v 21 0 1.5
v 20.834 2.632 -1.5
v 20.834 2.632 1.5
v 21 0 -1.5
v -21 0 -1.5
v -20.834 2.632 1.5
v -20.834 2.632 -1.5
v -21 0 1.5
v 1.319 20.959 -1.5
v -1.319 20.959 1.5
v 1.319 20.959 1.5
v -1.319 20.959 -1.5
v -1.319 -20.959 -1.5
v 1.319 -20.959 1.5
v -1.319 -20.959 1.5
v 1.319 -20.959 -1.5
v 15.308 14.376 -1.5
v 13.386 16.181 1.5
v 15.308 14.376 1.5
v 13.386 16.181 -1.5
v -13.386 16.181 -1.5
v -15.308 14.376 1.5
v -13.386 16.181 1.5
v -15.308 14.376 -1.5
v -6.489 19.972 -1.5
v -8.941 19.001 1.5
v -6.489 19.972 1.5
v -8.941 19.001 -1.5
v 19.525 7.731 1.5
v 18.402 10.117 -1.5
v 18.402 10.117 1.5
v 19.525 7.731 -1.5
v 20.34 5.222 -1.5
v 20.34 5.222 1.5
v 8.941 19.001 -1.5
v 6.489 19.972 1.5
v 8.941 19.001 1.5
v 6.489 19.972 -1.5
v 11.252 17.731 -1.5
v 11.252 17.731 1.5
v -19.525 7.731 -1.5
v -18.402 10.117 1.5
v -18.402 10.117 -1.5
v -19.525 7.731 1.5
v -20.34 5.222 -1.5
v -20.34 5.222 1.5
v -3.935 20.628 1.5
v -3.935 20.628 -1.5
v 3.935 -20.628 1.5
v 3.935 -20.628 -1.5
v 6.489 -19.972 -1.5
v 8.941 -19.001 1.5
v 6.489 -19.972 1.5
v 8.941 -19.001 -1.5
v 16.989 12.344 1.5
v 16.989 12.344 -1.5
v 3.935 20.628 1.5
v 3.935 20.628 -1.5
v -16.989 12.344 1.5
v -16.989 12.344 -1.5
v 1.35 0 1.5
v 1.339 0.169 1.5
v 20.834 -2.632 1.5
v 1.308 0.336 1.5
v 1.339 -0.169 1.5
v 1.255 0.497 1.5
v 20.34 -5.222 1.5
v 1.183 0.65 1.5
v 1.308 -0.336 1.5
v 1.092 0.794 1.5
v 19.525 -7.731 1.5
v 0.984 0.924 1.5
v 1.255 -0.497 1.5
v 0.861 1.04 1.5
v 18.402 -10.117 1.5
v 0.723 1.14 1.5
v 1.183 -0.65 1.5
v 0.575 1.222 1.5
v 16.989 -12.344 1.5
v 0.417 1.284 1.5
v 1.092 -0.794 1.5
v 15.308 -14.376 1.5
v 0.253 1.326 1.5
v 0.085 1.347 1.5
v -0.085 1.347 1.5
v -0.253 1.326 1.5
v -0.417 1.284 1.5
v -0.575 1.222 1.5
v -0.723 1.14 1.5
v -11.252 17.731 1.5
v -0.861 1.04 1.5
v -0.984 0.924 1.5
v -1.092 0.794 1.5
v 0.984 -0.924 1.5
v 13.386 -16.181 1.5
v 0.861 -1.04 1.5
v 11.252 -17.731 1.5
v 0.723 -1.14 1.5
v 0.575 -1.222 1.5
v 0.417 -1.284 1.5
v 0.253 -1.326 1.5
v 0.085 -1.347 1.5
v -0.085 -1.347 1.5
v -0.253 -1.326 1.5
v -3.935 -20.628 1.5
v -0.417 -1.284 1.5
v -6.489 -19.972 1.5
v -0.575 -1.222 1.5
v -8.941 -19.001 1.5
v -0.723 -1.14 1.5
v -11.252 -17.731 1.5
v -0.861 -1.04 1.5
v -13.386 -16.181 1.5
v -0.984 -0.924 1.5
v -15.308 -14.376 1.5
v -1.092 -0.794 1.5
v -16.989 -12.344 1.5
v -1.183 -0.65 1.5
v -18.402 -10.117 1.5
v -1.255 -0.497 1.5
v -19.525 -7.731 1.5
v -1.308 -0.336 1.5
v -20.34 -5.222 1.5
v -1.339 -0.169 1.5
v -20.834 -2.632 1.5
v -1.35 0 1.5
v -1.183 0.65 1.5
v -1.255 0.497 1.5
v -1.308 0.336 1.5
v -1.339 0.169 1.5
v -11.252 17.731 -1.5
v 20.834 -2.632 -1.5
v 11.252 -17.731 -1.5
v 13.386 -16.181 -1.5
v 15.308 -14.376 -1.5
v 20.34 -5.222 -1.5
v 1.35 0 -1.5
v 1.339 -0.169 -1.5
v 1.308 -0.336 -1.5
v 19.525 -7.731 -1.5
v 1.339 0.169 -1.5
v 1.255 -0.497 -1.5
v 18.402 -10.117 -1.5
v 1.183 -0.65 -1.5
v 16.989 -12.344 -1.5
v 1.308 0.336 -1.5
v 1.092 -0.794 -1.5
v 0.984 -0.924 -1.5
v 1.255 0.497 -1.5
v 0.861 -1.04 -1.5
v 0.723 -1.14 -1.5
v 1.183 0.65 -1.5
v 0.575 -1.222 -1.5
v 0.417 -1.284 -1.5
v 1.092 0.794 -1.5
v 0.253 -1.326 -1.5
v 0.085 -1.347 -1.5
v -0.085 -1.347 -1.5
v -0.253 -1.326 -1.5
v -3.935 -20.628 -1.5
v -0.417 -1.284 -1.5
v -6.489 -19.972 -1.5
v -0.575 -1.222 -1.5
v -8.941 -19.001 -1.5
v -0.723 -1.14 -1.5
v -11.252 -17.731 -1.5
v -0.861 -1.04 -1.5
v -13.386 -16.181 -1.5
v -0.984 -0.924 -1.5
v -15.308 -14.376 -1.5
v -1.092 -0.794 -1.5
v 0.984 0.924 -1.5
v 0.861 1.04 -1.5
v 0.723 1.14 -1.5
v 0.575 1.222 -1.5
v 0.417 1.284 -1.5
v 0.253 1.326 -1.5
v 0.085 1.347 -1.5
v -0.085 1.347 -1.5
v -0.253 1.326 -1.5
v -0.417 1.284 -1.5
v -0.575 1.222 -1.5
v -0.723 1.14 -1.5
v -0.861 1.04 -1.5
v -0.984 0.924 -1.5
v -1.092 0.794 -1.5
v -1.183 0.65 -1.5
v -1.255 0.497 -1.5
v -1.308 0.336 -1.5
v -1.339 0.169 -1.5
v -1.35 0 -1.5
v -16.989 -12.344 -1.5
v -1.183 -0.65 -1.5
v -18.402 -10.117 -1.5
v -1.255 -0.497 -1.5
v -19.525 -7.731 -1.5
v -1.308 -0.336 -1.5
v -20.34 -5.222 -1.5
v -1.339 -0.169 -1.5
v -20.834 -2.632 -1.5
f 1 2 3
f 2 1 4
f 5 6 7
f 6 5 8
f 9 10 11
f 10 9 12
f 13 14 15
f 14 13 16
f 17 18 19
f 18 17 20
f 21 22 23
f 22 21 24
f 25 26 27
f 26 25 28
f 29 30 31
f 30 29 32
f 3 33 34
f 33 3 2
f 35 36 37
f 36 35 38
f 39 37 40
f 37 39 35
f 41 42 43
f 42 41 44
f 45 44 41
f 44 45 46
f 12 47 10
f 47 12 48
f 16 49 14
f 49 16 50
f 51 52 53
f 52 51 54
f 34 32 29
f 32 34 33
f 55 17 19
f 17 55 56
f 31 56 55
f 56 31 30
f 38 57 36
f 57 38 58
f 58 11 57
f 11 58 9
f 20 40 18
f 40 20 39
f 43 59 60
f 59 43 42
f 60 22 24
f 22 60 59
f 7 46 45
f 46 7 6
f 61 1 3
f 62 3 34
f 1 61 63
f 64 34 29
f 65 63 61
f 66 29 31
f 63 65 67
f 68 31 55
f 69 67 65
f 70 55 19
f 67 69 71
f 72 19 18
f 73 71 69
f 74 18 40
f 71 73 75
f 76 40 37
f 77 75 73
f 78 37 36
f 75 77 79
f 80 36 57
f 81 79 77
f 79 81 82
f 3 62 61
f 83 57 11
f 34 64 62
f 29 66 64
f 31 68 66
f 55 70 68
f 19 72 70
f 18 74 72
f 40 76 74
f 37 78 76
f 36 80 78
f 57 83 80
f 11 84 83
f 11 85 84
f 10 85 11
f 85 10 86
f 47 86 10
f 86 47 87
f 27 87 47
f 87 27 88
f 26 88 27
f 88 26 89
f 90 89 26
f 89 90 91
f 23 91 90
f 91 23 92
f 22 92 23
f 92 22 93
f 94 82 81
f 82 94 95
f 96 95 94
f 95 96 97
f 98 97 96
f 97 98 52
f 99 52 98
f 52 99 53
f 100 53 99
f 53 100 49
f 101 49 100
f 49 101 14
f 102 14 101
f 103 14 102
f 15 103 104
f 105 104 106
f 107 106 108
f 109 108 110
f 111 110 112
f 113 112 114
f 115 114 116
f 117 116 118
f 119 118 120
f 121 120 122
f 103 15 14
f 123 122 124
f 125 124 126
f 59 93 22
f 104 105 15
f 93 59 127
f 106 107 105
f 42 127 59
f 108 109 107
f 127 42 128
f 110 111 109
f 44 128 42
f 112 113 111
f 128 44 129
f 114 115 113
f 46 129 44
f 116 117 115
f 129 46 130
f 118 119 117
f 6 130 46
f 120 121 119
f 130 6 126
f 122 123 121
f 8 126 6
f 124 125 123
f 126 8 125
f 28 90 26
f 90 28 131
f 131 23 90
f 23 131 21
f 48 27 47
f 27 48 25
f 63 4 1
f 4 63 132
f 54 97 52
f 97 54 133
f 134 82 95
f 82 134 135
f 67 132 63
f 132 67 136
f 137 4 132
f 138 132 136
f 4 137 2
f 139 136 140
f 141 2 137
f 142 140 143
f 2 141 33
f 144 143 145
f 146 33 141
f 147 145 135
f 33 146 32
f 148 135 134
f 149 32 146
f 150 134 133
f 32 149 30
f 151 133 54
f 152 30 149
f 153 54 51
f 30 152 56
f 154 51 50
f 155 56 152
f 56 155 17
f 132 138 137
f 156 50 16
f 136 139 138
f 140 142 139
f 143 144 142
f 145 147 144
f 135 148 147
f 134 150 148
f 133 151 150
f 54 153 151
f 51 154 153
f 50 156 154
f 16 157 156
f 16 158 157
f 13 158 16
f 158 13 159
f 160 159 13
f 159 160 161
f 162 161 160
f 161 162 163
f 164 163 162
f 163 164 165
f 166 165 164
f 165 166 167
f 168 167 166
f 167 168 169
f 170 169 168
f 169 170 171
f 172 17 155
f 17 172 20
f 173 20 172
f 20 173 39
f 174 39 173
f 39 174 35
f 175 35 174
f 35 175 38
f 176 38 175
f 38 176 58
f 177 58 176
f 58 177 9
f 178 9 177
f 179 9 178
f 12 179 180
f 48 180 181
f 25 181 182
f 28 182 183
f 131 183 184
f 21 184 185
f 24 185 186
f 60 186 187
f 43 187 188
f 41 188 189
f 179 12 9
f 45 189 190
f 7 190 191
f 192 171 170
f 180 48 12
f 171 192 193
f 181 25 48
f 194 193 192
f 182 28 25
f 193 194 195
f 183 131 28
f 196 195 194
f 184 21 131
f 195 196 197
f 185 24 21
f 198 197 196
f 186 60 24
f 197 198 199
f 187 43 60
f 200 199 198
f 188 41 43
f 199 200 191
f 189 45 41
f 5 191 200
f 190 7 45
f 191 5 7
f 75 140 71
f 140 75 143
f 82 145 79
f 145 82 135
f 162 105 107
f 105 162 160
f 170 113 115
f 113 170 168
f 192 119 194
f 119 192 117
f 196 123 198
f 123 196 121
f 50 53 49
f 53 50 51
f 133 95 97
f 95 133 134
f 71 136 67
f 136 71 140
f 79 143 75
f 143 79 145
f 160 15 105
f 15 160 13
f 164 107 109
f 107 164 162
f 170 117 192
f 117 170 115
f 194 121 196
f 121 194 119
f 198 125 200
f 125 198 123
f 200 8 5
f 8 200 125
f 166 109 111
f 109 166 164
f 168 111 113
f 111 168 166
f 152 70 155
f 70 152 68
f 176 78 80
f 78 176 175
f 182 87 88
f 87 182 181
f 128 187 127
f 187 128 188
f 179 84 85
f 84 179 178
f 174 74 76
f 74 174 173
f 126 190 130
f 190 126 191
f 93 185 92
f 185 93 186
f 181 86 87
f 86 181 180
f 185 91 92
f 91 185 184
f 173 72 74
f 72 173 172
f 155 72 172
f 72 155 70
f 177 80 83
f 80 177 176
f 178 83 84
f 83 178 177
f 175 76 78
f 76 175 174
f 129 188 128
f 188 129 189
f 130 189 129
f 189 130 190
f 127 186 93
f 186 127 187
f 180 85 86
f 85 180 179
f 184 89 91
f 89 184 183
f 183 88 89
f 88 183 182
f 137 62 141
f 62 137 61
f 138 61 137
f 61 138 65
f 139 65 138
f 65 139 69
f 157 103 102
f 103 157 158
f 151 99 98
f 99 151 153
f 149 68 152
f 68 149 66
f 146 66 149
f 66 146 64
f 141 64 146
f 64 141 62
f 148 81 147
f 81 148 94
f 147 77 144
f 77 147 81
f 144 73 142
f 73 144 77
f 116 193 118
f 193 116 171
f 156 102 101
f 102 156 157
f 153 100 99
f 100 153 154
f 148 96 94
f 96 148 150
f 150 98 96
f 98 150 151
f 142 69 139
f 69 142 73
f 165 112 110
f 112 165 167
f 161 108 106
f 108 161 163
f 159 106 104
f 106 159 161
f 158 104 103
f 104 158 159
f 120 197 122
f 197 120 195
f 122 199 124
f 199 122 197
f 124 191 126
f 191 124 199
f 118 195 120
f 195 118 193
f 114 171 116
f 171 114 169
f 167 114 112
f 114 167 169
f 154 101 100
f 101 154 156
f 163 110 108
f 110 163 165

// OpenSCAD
$fn = 50;


difference() {
	union() {
		translate(v = [0, 0, -1.5000000000]) {
			cylinder(h = 3, r = 21.0000000000);
		}
	}
	union() {
		translate(v = [0, 0, -100.0000000000]) {
			cylinder(h = 200, r = 1.3500000000);
		}
	}
}
